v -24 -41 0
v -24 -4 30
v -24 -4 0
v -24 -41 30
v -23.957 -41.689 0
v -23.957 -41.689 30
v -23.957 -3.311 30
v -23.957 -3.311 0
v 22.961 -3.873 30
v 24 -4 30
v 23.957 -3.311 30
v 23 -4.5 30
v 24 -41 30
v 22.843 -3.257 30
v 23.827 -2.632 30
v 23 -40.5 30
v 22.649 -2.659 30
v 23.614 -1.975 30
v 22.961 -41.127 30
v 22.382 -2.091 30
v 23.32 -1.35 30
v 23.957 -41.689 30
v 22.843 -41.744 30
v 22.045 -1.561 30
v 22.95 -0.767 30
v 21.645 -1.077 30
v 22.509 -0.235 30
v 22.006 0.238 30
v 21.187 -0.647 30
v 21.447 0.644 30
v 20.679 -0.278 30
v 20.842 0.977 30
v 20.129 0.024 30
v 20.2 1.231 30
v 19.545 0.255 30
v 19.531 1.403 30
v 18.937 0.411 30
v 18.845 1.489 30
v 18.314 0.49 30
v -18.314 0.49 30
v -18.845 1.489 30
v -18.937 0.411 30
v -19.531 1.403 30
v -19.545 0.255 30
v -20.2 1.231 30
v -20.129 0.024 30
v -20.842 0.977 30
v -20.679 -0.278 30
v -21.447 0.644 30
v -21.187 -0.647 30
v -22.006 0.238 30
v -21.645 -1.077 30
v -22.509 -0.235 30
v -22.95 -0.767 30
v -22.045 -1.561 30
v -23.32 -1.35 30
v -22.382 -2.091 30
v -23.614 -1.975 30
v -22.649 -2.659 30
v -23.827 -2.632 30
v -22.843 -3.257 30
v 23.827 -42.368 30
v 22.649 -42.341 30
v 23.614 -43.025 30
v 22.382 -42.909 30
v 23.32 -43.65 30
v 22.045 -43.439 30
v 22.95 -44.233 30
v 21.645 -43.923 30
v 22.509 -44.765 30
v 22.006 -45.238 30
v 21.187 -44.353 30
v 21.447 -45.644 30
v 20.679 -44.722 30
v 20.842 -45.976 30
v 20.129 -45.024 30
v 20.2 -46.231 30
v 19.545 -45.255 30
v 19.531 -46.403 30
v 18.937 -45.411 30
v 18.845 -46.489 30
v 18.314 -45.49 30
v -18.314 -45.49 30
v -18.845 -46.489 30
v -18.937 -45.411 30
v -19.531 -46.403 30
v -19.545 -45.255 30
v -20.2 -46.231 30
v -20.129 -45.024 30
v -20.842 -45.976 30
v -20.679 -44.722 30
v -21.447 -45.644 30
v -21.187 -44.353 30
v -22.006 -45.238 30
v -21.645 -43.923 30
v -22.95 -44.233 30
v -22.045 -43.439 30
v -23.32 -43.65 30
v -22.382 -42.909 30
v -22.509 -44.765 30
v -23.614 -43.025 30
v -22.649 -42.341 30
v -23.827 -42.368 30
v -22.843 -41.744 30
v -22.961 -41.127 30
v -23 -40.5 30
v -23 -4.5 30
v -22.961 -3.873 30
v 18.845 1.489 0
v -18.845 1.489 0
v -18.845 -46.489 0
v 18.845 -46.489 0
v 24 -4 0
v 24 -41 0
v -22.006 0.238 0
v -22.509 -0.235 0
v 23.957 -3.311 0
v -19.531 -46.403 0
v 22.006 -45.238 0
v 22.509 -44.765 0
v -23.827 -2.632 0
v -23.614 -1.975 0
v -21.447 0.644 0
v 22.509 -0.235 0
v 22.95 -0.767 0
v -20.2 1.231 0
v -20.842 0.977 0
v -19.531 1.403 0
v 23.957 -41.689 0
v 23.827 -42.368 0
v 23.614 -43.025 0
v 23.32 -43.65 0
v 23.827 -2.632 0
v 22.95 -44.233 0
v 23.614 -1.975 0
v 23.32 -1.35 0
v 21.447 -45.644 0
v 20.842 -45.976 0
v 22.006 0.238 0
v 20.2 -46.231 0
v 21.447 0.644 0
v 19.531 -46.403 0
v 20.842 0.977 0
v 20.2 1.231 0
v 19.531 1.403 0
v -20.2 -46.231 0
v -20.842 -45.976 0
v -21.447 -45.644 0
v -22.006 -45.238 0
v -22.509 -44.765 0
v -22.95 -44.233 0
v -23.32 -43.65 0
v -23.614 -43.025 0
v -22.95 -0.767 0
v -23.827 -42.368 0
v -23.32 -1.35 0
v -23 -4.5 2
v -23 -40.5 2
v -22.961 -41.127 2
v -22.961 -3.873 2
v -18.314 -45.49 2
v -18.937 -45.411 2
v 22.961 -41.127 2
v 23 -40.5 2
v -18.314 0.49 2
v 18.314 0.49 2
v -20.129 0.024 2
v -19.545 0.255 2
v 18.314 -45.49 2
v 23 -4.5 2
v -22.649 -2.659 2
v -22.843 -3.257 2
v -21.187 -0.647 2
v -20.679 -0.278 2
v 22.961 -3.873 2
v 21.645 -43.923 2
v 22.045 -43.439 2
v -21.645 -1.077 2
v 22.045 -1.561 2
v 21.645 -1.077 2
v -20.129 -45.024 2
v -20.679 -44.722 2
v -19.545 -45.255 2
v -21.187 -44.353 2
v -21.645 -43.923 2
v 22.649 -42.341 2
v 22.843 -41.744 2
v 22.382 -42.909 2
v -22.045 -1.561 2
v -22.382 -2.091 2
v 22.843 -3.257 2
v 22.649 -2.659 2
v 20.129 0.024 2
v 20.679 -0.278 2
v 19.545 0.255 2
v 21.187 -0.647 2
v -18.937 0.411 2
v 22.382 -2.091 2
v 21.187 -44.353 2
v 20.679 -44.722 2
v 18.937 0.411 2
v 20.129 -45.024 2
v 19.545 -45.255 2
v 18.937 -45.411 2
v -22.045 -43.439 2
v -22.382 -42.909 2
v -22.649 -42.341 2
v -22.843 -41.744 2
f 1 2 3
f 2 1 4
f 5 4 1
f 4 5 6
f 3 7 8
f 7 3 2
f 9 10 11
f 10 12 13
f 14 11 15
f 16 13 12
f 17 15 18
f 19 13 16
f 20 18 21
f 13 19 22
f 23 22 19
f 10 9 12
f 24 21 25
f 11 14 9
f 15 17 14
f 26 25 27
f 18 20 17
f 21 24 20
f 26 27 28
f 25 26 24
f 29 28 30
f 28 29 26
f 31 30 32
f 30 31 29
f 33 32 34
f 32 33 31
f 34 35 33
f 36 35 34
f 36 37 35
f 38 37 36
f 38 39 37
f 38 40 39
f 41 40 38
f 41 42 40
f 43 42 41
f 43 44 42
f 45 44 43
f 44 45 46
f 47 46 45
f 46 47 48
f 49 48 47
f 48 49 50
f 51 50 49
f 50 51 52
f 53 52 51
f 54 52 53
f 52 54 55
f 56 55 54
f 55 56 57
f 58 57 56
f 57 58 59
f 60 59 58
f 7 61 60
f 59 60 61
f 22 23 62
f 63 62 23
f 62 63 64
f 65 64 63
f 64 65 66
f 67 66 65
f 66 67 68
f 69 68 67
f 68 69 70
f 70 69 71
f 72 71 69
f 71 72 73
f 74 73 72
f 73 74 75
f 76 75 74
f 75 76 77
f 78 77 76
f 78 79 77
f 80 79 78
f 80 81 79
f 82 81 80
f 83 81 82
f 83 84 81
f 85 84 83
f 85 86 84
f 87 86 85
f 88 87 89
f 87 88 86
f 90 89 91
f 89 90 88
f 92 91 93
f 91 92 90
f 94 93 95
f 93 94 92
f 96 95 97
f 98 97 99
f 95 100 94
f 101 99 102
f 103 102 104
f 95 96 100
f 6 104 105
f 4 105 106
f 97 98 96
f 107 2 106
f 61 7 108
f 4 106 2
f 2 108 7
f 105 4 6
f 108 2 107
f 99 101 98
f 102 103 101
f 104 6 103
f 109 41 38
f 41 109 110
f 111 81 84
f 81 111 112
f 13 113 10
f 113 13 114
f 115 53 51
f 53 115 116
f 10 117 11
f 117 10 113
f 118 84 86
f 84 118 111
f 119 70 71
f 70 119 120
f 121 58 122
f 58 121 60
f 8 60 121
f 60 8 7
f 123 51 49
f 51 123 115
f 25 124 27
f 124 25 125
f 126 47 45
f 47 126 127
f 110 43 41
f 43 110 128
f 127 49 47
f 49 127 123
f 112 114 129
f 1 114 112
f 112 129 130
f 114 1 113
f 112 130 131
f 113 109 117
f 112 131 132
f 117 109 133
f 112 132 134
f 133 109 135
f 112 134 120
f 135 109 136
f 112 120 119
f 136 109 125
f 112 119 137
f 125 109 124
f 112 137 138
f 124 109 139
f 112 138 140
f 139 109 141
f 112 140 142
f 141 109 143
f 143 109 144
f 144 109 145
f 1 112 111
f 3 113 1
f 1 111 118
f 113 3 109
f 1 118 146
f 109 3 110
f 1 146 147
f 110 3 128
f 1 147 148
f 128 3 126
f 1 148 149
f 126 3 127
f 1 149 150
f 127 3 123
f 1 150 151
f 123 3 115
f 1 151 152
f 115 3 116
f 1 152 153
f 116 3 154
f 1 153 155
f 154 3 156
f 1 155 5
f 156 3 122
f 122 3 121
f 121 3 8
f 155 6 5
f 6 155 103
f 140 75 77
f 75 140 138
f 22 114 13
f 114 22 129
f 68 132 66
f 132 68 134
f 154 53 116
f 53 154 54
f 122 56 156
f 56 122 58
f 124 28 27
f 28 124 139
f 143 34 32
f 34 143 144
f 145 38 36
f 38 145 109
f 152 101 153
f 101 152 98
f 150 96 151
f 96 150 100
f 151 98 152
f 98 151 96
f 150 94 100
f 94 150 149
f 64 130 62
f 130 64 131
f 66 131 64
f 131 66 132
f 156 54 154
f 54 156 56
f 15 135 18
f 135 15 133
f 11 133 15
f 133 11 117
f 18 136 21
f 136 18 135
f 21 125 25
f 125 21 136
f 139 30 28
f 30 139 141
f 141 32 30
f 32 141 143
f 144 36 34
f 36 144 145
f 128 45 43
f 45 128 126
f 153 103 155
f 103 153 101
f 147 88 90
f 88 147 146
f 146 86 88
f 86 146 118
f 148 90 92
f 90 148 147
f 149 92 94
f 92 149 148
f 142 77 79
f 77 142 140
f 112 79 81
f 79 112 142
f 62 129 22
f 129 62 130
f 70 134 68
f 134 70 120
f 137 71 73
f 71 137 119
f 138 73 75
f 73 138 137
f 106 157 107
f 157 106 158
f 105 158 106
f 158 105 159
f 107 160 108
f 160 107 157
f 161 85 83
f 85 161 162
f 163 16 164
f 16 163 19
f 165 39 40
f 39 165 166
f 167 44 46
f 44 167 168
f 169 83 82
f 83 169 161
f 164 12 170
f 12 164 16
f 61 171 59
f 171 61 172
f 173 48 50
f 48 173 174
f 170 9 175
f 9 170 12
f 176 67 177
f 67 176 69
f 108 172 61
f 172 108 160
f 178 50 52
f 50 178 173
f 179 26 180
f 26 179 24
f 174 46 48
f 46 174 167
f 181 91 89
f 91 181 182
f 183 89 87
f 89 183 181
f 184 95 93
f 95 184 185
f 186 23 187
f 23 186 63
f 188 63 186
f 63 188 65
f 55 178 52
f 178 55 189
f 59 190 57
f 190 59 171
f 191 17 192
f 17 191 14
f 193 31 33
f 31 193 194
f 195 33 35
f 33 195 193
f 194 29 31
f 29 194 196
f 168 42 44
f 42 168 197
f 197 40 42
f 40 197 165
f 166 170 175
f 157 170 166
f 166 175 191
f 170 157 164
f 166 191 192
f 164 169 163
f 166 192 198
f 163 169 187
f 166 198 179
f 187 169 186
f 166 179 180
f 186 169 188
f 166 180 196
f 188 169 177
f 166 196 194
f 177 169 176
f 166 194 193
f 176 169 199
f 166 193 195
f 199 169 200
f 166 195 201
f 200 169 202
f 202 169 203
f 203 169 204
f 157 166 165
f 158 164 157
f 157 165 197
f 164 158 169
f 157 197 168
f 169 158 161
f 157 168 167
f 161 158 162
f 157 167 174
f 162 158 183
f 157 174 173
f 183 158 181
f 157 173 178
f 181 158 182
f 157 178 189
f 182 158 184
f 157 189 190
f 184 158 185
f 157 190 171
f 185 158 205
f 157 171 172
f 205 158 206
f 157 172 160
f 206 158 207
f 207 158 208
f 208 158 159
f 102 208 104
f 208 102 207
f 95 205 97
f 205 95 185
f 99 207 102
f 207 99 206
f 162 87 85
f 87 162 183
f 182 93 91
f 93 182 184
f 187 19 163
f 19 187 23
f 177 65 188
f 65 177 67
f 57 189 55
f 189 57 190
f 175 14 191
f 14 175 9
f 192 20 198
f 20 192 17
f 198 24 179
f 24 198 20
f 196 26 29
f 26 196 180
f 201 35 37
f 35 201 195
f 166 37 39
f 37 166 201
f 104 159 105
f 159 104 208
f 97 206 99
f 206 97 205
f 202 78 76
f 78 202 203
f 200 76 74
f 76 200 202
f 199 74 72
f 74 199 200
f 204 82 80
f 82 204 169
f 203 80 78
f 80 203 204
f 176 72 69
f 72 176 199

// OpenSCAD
$fn = 50;


difference() {
	union() {
		translate(v = [0, -22.5000000000, 0]) {
			hull() {
				translate(v = [-18.5000000000, 18.5000000000, 0]) {
					cylinder(h = 30, r = 5.5000000000);
				}
				translate(v = [18.5000000000, 18.5000000000, 0]) {
					cylinder(h = 30, r = 5.5000000000);
				}
				translate(v = [-18.5000000000, -18.5000000000, 0]) {
					cylinder(h = 30, r = 5.5000000000);
				}
				translate(v = [18.5000000000, -18.5000000000, 0]) {
					cylinder(h = 30, r = 5.5000000000);
				}
			}
		}
	}
	union() {
		translate(v = [0, -22.5000000000, 2]) {
			hull() {
				translate(v = [-18.0000000000, 18.0000000000, 0]) {
					cylinder(h = 60, r = 5);
				}
				translate(v = [18.0000000000, 18.0000000000, 0]) {
					cylinder(h = 60, r = 5);
				}
				translate(v = [-18.0000000000, -18.0000000000, 0]) {
					cylinder(h = 60, r = 5);
				}
				translate(v = [18.0000000000, -18.0000000000, 0]) {
					cylinder(h = 60, r = 5);
				}
			}
		}
	}
}
